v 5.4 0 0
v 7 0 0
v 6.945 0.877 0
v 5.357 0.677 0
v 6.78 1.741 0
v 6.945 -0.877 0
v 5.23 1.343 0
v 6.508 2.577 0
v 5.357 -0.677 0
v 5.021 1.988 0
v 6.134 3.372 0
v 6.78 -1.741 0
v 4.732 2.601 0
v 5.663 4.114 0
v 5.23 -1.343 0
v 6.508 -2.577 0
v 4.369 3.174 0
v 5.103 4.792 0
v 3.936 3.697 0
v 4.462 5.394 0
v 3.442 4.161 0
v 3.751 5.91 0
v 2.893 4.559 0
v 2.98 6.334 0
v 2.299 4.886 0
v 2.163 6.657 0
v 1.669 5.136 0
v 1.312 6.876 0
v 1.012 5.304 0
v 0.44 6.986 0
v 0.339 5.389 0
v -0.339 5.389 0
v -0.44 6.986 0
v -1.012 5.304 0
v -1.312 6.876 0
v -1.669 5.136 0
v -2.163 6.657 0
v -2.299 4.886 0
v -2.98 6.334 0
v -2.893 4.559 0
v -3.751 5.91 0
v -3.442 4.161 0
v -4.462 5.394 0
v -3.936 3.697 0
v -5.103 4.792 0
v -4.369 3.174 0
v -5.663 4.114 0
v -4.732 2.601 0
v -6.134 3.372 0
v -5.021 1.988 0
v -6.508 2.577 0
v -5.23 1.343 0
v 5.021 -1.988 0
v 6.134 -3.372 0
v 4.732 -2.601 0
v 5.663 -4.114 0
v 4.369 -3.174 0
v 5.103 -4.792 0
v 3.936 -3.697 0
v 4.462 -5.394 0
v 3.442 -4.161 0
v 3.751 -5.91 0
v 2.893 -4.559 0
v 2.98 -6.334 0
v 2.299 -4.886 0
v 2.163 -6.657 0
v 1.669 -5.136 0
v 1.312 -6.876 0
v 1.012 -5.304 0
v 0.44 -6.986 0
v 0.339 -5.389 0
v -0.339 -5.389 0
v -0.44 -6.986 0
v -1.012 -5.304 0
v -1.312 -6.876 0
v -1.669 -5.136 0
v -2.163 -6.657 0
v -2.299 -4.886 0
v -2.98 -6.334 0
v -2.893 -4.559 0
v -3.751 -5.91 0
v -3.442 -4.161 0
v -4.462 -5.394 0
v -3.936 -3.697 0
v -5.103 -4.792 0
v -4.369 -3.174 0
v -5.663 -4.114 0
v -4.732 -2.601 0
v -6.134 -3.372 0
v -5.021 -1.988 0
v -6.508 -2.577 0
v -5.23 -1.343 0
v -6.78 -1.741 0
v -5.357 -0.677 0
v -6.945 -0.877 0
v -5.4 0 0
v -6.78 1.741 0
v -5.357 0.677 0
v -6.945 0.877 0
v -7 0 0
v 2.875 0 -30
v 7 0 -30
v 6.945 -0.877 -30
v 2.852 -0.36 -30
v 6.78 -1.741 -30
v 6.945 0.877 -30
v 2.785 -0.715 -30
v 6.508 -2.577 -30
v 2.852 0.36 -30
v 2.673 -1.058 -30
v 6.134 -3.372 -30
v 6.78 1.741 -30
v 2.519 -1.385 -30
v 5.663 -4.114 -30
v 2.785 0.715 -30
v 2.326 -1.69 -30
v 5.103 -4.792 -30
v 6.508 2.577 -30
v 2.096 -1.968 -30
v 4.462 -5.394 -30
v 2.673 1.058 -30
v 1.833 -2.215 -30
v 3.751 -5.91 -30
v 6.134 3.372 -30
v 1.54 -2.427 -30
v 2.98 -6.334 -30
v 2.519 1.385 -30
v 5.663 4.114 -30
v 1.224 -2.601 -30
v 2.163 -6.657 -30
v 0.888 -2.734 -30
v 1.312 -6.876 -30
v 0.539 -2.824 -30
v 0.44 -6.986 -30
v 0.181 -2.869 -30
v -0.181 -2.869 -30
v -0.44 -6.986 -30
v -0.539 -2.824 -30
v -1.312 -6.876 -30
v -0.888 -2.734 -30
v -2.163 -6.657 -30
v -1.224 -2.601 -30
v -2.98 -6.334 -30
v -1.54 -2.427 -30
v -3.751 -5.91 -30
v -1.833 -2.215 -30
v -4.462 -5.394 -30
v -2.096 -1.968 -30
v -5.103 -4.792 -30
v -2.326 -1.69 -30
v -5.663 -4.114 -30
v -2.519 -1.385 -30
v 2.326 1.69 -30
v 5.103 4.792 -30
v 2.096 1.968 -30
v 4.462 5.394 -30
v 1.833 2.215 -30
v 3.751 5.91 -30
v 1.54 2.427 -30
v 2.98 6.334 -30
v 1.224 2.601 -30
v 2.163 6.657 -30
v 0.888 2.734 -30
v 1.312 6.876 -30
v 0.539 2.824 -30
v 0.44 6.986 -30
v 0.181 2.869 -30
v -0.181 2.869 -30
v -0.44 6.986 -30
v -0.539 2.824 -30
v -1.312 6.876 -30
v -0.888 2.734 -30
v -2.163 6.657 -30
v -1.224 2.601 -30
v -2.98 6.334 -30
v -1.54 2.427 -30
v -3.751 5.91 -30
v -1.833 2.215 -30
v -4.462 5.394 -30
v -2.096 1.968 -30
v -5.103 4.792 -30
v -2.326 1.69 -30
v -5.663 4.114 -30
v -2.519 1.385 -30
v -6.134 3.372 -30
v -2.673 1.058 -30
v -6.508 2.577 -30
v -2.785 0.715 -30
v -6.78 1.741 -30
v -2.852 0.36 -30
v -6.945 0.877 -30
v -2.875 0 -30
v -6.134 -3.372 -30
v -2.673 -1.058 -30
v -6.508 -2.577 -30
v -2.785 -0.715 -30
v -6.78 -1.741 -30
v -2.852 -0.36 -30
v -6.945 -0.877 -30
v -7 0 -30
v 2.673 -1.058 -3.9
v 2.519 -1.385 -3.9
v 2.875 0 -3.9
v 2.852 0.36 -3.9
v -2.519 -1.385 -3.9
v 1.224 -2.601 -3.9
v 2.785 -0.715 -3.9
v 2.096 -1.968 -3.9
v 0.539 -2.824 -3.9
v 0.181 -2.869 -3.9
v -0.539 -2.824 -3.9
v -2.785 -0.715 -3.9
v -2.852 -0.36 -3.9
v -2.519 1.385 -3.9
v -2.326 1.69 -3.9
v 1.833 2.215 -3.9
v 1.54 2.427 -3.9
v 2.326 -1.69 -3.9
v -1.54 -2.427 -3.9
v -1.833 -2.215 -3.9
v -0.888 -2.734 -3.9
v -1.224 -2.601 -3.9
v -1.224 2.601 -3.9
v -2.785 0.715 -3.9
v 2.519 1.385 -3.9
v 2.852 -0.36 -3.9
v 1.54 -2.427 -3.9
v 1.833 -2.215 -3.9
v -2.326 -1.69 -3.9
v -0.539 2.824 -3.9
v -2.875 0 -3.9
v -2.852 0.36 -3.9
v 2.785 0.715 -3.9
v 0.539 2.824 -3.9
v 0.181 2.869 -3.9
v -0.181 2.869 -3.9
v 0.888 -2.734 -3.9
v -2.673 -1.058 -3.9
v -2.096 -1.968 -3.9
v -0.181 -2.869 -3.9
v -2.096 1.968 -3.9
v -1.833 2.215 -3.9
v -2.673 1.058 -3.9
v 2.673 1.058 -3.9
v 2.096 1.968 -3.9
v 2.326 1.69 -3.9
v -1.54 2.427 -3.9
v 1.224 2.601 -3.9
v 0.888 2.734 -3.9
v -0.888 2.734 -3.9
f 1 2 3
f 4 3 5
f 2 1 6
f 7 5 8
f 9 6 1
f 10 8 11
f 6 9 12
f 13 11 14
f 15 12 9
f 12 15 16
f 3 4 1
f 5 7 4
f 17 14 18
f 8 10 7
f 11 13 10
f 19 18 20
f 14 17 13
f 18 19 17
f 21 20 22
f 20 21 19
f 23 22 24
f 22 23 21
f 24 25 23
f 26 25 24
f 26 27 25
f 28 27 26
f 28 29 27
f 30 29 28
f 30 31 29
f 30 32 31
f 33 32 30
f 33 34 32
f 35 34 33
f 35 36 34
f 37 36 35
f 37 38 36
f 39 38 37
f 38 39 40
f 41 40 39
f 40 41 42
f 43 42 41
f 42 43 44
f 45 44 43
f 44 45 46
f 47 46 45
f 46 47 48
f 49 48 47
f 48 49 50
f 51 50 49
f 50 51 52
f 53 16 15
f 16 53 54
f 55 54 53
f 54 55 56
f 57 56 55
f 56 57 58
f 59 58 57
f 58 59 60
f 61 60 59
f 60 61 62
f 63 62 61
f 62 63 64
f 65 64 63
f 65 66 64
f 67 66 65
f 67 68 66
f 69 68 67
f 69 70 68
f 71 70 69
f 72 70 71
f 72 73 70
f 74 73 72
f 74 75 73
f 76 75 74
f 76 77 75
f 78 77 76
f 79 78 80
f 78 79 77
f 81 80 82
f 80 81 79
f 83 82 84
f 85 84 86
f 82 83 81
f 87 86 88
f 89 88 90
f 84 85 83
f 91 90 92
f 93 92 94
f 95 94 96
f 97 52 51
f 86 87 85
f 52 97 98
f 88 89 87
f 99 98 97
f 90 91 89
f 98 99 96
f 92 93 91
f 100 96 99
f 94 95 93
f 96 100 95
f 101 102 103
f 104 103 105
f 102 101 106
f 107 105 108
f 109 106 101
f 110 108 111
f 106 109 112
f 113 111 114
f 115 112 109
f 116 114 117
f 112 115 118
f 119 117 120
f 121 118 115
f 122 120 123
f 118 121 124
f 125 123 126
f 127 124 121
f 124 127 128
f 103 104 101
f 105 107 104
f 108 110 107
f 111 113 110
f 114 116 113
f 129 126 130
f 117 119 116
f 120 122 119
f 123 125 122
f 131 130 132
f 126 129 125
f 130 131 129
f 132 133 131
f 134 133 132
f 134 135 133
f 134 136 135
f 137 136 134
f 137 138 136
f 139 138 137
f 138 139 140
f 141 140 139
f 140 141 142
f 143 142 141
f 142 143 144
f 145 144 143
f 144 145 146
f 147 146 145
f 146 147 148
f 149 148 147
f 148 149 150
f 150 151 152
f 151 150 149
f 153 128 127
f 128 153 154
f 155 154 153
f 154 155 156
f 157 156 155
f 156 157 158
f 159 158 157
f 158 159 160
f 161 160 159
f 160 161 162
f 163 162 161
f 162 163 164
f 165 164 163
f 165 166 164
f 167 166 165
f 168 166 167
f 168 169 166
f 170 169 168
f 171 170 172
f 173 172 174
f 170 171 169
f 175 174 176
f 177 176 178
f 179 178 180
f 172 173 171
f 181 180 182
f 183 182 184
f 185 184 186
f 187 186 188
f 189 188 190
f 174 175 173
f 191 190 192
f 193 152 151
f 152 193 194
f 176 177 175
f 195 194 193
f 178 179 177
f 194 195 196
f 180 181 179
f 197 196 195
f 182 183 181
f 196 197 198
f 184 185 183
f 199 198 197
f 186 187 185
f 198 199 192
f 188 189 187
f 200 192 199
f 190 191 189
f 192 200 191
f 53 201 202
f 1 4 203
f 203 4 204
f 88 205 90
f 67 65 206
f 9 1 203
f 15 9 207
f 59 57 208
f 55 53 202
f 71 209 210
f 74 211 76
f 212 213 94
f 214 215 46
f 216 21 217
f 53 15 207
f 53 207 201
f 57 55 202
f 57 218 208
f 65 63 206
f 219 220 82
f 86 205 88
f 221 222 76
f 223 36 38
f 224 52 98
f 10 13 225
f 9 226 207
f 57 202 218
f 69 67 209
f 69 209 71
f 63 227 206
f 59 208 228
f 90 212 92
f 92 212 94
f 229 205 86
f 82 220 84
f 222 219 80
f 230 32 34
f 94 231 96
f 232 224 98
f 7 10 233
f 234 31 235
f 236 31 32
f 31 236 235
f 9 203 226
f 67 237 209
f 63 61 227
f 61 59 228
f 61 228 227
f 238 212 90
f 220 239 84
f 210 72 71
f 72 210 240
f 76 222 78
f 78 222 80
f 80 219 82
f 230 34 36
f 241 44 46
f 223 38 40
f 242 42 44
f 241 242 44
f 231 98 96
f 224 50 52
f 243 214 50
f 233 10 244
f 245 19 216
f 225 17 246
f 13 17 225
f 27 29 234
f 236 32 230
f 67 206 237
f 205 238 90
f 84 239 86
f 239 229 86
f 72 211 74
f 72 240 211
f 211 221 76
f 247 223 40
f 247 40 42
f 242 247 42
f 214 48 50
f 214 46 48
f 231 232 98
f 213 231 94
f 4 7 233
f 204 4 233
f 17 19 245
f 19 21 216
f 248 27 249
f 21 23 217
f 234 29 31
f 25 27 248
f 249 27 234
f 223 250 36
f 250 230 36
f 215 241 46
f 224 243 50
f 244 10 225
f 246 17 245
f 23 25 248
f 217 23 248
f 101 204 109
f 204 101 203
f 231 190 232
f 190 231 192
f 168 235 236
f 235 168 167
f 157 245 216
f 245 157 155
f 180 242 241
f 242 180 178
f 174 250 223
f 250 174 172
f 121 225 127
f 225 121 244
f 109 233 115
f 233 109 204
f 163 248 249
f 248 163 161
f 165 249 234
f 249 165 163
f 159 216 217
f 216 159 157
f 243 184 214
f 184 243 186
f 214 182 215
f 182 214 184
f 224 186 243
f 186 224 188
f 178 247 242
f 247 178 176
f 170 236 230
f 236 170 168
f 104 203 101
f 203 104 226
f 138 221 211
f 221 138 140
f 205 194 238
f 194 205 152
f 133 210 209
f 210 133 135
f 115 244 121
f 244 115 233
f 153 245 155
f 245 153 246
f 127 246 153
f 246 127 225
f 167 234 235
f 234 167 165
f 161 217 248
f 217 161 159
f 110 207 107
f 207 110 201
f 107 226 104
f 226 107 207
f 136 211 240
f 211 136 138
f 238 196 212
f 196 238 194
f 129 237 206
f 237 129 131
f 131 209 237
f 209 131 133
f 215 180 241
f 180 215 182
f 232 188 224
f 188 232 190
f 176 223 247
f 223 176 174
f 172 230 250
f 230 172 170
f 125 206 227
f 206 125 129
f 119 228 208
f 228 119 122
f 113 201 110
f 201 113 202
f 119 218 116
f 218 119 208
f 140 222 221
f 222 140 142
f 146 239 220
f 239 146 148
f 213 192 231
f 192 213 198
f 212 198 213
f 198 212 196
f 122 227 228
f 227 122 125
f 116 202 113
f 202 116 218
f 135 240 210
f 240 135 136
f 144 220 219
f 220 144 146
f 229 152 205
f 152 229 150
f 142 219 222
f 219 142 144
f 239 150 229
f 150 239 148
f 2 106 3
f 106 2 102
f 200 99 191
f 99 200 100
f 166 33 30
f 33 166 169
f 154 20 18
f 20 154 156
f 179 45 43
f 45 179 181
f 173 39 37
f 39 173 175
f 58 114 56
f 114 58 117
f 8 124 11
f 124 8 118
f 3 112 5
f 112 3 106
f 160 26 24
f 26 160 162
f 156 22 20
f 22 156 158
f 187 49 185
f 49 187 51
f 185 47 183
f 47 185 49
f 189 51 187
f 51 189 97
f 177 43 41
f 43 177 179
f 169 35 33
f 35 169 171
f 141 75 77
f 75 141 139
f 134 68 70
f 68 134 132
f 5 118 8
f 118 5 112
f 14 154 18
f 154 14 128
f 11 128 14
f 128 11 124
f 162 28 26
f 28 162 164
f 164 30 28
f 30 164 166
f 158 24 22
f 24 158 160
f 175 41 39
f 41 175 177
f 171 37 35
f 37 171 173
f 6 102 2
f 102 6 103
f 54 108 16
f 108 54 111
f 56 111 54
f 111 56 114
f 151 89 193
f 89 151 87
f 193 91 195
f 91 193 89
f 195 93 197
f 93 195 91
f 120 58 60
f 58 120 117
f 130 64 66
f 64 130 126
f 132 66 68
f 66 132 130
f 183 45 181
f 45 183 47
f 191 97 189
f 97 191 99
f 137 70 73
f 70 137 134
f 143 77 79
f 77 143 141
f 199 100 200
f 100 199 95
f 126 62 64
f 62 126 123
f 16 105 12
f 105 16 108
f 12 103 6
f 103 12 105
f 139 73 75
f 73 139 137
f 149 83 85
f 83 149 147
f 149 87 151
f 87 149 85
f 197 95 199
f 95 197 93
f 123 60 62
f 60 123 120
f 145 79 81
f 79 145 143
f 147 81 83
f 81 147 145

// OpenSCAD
$fn = 50;


difference() {
	union() {
		translate(v = [0, 0, -30.0000000000]) {
			cylinder(h = 30, r = 7.0000000000);
		}
		cylinder(h = 0, r = 17.0000000000);
	}
	union() {
		translate(v = [0, 0, 0]) {
			rotate(a = [0, 0, 0]) {
				difference() {
					union() {
						#translate(v = [0, 0, -30.0000000000]) {
							cylinder(h = 30, r = 2.6000000000);
						}
						#translate(v = [0, 0, -3.9000000000]) {
							cylinder(h = 3.9000000000, r = 7.0000000000, r1 = 2.8750000000, r2 = 5.4000000000);
						}
						#translate(v = [0, 0, -30.0000000000]) {
							cylinder(h = 30, r = 2.8750000000);
						}
						#translate(v = [0, 0, -30.0000000000]) {
							cylinder(h = 30, r = 2.6000000000);
						}
					}
					union();
				}
			}
		}
	}
}
